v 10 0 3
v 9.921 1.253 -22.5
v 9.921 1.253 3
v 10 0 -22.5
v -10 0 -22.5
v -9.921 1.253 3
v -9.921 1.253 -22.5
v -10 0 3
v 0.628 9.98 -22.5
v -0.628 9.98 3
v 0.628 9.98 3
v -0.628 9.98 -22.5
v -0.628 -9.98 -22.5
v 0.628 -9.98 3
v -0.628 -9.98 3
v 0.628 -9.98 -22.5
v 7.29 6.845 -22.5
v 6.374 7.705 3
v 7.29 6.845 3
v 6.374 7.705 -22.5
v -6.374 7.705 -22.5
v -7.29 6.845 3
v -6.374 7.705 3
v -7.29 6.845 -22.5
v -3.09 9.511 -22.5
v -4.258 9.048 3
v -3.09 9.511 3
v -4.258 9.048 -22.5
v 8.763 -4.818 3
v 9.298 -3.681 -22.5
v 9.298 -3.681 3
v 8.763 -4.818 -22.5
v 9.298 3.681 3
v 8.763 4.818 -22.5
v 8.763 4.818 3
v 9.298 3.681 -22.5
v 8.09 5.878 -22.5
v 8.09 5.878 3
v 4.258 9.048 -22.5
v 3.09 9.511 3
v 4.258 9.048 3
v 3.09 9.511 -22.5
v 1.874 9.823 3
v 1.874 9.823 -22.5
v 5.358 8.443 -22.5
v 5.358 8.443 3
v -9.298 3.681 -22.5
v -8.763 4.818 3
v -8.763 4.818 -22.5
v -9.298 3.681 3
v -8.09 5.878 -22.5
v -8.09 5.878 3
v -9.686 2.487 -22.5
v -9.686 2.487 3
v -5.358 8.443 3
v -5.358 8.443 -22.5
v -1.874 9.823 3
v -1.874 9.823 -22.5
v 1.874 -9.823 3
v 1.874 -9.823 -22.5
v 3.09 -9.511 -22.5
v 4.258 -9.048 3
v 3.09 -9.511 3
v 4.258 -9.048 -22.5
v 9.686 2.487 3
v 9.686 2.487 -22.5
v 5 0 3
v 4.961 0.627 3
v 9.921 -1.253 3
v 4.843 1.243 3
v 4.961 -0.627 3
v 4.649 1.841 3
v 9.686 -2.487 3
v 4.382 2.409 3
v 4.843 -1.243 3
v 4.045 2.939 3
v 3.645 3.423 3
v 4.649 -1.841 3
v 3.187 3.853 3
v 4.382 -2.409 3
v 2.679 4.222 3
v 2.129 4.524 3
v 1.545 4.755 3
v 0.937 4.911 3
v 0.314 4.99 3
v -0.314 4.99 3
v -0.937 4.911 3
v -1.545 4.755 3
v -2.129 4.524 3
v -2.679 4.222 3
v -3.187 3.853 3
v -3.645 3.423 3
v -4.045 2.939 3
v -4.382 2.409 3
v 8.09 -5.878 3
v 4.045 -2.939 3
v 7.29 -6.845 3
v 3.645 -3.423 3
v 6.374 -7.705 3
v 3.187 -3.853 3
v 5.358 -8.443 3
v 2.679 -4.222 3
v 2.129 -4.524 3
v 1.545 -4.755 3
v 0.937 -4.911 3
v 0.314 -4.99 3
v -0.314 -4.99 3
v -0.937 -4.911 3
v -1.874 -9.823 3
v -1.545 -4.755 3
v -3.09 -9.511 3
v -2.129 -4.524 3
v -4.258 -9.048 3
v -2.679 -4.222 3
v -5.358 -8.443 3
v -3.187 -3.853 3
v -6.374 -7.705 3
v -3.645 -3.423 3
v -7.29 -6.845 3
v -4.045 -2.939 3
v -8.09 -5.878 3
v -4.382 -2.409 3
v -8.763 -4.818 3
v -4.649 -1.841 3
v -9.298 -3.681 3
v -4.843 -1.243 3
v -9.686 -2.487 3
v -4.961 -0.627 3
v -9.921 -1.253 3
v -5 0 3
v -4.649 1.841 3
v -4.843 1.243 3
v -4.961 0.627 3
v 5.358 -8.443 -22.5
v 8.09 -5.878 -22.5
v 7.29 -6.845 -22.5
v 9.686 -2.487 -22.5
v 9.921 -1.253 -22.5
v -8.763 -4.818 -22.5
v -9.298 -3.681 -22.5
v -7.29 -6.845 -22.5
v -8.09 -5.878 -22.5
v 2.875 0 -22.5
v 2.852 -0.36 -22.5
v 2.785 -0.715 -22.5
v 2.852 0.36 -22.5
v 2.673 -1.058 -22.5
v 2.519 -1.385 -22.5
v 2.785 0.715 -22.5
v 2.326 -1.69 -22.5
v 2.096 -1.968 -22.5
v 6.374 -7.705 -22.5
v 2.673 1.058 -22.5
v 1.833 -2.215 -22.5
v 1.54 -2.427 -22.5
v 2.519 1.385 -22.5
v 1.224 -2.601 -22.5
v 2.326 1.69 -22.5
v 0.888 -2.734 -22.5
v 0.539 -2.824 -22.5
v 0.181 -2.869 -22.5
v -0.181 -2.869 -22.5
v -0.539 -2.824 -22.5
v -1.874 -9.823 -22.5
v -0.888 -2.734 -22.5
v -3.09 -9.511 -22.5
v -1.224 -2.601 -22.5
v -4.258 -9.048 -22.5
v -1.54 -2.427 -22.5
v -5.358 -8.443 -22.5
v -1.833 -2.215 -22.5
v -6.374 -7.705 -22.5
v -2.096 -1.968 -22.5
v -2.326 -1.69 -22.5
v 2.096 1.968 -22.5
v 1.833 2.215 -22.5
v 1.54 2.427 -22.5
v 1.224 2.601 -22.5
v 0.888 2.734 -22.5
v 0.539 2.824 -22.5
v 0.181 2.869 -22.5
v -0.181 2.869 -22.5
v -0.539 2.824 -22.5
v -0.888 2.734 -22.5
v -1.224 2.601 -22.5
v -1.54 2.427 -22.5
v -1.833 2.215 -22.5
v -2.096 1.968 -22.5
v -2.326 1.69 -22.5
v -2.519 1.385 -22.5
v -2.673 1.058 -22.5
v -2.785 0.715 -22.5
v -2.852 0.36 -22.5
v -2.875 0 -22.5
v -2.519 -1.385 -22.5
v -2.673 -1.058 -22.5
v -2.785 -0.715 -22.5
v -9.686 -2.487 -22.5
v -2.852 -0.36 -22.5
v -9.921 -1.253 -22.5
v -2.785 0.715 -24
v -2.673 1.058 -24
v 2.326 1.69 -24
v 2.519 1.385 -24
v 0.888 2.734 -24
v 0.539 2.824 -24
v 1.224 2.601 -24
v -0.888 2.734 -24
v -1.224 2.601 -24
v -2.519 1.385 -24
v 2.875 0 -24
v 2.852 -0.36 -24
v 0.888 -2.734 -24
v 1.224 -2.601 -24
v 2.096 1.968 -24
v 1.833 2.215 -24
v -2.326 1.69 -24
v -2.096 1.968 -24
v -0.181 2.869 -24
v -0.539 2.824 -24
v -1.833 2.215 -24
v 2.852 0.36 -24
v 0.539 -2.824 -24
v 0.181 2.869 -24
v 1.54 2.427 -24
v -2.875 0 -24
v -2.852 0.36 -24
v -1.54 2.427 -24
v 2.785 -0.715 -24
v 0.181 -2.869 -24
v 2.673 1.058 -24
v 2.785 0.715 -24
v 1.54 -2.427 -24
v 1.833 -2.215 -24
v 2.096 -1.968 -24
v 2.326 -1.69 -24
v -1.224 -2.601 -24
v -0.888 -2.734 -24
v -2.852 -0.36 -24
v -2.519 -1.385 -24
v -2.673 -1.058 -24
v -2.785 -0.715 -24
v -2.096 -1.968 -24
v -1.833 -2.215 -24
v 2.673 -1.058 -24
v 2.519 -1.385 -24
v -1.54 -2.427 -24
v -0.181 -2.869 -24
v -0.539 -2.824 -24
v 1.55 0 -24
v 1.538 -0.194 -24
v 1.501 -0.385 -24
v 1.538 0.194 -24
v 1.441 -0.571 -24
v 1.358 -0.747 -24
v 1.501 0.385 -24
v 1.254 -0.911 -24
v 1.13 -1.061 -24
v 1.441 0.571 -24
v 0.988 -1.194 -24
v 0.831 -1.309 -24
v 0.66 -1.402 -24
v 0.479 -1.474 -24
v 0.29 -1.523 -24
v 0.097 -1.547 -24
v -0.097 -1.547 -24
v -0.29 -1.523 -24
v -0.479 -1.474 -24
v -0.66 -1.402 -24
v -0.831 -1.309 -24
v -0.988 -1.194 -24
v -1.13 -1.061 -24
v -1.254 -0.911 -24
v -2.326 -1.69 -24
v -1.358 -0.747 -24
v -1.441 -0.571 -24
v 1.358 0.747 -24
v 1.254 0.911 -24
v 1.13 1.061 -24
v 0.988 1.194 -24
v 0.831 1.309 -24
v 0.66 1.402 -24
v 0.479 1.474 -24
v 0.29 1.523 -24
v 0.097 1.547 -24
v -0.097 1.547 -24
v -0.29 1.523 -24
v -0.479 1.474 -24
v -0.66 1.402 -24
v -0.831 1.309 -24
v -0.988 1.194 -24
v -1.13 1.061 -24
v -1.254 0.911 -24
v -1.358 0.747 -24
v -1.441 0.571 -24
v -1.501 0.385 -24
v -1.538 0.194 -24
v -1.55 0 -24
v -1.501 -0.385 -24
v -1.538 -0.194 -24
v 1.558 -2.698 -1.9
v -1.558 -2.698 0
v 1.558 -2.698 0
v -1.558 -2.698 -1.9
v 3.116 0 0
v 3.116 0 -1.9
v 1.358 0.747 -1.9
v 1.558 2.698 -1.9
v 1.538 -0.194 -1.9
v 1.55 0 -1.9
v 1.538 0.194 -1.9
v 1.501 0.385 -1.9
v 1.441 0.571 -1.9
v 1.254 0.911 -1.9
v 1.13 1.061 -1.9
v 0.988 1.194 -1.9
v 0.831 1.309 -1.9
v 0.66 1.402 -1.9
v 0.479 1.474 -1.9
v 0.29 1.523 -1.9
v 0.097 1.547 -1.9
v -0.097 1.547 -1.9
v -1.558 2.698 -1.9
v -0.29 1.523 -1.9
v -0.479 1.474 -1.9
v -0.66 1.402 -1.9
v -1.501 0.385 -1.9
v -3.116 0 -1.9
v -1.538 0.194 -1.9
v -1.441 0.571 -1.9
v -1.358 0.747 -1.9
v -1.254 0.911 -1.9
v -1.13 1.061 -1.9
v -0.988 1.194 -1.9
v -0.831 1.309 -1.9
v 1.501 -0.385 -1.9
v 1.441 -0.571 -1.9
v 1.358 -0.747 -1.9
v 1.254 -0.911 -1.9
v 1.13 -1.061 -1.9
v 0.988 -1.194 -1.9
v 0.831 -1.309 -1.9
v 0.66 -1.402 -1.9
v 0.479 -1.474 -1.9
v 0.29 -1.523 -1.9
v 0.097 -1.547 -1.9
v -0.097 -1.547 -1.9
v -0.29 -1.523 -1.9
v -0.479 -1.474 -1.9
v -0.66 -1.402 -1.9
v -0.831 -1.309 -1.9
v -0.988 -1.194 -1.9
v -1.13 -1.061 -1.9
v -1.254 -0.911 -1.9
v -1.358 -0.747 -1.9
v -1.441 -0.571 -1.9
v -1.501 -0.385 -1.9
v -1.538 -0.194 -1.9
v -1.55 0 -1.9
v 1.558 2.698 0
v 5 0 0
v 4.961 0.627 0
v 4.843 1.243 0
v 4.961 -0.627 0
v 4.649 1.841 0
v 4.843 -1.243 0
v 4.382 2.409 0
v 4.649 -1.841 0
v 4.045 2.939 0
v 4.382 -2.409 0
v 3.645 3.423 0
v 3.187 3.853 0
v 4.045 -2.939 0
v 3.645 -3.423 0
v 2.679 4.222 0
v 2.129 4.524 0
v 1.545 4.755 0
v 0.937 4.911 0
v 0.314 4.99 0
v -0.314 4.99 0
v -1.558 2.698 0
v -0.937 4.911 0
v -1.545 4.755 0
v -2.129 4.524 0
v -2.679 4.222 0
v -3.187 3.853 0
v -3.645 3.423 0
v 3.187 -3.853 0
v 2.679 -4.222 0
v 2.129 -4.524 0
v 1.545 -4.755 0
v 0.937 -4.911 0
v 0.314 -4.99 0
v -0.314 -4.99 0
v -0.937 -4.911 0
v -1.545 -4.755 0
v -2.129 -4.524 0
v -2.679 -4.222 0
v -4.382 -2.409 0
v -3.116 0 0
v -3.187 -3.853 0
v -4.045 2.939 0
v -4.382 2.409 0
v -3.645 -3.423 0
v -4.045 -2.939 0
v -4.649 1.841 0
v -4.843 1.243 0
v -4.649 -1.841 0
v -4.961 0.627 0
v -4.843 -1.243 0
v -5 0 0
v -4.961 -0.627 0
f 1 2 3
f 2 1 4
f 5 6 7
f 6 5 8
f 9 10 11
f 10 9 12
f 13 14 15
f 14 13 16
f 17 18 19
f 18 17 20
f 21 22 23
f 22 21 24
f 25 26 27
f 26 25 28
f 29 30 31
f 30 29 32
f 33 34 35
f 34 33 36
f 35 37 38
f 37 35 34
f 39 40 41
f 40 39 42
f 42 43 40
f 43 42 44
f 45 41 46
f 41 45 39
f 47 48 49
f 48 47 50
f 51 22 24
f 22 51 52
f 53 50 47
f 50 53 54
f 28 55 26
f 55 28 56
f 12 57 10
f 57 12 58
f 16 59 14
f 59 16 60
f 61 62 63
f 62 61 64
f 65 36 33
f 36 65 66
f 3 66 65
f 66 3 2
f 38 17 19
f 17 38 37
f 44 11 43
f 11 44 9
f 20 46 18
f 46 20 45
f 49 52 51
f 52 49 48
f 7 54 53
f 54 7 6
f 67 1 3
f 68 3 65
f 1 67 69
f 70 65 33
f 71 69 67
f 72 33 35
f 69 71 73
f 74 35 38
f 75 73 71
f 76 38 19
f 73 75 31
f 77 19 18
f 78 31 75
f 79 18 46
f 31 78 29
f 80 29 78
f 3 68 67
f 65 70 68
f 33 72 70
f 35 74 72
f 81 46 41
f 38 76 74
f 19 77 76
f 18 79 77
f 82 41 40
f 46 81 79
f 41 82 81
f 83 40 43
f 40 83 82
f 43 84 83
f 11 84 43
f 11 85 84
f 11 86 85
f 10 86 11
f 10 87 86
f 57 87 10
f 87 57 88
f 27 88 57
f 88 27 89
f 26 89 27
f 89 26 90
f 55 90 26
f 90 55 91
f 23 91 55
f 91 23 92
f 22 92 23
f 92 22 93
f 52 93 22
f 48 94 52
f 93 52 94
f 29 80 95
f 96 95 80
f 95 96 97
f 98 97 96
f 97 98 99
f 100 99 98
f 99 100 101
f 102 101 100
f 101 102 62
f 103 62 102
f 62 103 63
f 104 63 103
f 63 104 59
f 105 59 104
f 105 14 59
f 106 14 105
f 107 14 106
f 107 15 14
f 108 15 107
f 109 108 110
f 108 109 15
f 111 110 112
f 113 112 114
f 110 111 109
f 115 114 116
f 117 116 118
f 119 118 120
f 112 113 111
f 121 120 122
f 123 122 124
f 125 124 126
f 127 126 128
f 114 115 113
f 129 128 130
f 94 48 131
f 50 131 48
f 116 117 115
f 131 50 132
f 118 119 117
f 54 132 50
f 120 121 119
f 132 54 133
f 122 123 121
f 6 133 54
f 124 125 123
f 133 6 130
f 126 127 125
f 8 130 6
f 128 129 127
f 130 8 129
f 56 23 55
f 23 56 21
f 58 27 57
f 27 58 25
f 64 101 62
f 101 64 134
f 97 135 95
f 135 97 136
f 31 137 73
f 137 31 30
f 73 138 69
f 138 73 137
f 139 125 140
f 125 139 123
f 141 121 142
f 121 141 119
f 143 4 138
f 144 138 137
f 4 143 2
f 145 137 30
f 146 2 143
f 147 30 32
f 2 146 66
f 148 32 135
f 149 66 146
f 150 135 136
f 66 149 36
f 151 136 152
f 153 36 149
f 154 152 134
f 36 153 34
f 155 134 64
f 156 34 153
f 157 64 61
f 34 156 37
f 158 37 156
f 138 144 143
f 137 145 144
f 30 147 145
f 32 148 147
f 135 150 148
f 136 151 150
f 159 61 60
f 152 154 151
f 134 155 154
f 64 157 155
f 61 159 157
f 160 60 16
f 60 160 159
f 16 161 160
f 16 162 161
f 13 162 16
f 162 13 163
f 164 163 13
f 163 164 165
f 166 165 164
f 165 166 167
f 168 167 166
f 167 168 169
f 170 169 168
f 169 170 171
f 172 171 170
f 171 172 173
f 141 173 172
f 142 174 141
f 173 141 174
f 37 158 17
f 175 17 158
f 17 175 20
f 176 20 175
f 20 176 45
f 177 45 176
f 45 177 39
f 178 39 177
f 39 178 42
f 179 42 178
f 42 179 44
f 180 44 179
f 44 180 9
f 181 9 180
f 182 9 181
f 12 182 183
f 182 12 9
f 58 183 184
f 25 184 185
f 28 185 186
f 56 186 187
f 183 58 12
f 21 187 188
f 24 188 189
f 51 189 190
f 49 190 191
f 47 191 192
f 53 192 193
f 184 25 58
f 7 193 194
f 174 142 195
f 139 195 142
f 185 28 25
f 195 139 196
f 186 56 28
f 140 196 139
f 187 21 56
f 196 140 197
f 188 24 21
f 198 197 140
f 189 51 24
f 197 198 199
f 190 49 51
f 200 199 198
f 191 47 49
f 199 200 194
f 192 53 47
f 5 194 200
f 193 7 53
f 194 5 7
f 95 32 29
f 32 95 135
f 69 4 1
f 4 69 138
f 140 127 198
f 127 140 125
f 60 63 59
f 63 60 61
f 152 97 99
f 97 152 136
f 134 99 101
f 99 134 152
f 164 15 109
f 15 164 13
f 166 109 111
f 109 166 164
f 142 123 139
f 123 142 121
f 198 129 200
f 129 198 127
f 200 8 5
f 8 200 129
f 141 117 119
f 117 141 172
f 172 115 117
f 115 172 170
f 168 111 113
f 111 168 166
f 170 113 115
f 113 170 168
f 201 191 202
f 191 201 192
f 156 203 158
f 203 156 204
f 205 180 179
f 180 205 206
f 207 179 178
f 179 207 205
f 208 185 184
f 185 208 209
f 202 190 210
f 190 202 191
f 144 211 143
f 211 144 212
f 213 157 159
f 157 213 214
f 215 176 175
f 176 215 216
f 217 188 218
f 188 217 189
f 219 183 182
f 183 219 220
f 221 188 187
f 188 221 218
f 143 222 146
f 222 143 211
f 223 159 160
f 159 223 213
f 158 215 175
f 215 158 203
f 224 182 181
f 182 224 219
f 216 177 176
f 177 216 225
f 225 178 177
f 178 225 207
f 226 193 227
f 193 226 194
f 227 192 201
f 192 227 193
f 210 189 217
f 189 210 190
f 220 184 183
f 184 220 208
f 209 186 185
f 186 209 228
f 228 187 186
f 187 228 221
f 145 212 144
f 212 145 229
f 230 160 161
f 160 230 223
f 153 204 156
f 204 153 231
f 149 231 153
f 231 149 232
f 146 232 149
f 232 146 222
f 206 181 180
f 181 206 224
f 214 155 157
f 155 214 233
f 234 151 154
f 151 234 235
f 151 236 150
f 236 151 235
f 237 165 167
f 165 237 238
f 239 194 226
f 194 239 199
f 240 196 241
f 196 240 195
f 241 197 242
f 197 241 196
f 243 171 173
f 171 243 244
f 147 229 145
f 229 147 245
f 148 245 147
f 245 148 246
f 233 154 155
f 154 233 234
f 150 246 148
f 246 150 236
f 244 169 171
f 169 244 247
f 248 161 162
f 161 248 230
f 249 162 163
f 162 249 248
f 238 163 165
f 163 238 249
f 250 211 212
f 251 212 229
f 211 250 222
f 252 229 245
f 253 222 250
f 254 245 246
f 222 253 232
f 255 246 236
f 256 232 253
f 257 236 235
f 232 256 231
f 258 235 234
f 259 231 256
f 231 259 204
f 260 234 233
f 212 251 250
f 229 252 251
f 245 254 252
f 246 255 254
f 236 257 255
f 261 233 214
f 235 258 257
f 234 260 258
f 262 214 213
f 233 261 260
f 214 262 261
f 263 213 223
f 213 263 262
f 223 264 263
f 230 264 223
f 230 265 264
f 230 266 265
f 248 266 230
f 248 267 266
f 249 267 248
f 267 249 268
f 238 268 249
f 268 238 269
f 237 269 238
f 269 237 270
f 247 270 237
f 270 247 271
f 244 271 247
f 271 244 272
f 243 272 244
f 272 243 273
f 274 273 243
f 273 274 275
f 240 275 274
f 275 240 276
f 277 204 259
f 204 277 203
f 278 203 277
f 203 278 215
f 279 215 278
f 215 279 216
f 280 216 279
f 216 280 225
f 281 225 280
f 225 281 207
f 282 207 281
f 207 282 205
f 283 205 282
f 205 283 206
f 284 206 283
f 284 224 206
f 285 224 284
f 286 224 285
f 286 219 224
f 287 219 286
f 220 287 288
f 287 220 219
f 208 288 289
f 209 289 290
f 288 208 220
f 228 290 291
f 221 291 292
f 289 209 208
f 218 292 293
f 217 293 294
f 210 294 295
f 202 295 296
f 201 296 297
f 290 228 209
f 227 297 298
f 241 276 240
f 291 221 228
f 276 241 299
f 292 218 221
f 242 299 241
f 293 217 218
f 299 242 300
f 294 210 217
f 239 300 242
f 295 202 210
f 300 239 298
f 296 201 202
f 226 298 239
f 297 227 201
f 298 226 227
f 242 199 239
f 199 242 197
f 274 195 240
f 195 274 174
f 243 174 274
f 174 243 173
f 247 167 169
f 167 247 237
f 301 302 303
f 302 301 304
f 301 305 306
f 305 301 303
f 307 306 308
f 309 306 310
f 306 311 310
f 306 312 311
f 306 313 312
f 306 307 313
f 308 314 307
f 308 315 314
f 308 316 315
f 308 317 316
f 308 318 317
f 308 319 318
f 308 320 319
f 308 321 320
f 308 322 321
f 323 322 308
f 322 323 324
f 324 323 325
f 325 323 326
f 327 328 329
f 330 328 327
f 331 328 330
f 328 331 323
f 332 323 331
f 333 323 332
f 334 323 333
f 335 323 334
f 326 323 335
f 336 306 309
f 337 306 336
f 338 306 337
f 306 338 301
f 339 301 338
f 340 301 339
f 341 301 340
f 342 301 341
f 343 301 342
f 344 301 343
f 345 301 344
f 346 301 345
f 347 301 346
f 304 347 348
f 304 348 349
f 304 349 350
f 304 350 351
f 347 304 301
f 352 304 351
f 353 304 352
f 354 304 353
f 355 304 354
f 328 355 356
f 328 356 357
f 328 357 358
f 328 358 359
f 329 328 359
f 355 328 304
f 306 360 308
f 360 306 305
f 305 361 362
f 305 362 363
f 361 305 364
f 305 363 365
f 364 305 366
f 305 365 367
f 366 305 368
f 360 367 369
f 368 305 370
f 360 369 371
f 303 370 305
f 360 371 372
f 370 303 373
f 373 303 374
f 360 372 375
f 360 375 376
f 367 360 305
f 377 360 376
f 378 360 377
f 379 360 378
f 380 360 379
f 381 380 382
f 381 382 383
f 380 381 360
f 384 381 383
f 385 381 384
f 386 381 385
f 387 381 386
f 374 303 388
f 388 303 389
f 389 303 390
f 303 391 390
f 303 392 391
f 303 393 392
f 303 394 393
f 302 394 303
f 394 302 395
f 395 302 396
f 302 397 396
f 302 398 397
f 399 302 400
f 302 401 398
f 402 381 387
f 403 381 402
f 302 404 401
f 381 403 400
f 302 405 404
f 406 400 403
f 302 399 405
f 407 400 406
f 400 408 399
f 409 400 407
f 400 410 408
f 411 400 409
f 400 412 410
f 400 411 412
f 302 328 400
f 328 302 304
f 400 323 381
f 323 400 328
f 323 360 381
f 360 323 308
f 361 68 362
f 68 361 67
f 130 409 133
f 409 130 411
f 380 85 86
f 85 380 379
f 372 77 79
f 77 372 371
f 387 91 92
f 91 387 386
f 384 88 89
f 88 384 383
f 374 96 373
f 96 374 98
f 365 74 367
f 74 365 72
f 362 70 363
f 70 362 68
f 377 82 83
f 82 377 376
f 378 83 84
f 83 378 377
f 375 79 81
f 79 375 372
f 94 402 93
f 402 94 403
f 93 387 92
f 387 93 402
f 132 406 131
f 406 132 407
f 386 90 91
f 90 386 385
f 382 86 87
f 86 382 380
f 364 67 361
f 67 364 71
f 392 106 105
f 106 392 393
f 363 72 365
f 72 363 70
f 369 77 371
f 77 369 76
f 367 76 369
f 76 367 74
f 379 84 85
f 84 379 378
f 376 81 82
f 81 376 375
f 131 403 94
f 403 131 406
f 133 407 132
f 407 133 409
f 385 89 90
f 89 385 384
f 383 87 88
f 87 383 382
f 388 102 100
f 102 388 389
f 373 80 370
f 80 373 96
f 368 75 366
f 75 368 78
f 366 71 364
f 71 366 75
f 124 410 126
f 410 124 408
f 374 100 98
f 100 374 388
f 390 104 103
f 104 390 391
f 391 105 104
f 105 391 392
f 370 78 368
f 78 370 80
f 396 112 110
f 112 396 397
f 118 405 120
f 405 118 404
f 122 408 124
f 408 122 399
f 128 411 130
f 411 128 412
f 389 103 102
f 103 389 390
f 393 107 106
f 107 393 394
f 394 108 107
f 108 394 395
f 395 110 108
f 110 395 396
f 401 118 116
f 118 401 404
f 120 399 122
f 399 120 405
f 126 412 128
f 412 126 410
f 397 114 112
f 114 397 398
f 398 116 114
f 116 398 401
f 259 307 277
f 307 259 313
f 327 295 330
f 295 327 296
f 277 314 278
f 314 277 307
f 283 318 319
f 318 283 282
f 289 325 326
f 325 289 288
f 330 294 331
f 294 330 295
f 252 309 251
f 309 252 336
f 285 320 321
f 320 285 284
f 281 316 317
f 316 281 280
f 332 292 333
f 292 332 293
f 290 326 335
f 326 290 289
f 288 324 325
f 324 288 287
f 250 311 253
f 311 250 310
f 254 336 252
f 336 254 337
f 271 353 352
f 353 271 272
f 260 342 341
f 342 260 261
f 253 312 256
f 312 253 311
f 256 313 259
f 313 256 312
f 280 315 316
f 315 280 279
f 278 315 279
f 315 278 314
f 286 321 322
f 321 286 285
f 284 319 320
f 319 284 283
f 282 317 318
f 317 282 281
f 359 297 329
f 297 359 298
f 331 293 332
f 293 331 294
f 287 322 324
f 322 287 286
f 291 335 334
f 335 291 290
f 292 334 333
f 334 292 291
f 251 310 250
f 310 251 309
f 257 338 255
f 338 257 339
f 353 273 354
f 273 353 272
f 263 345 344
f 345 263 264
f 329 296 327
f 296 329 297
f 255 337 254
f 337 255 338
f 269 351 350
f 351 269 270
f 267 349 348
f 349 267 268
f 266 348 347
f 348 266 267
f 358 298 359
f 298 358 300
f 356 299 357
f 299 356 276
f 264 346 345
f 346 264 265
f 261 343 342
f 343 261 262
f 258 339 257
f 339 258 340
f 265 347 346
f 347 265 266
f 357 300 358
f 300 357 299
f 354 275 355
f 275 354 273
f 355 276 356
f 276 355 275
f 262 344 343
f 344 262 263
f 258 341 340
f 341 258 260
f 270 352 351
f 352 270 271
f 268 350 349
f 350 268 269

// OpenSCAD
$fn = 50;

difference() {
	union() {
		translate(v = [0, 0, -22.5]) {
			cylinder(h = 25.5, r = 10.0);
		}
		#translate(v = [0, 0, -24.0]) {
			cylinder(h = 24, r = 2.875);
		}
	}
	union() {
		translate(v = [0, 0, 0]) {
			rotate(a = [0, 0, 0]) {
				difference() {
					union() {
						translate(v = [0, 0, -1.9]) {
							linear_extrude(height = 1.9) {
								polygon(points = [[3.1158, 0.0], [1.5579000000000005, 2.698361953111554], [-1.5578999999999994, 2.6983619531115544], [-3.1158, 3.815754496783323e-16], [-1.5579000000000014, -2.6983619531115535], [1.557899999999998, -2.6983619531115552]]);
							}
						}
					}
					union();
				}
			}
		}
		#cylinder(h = 3, r = 5.0);
		#translate(v = [0, 0, -100.0]) {
			cylinder(h = 200, r = 1.55);
		}
	}
}
